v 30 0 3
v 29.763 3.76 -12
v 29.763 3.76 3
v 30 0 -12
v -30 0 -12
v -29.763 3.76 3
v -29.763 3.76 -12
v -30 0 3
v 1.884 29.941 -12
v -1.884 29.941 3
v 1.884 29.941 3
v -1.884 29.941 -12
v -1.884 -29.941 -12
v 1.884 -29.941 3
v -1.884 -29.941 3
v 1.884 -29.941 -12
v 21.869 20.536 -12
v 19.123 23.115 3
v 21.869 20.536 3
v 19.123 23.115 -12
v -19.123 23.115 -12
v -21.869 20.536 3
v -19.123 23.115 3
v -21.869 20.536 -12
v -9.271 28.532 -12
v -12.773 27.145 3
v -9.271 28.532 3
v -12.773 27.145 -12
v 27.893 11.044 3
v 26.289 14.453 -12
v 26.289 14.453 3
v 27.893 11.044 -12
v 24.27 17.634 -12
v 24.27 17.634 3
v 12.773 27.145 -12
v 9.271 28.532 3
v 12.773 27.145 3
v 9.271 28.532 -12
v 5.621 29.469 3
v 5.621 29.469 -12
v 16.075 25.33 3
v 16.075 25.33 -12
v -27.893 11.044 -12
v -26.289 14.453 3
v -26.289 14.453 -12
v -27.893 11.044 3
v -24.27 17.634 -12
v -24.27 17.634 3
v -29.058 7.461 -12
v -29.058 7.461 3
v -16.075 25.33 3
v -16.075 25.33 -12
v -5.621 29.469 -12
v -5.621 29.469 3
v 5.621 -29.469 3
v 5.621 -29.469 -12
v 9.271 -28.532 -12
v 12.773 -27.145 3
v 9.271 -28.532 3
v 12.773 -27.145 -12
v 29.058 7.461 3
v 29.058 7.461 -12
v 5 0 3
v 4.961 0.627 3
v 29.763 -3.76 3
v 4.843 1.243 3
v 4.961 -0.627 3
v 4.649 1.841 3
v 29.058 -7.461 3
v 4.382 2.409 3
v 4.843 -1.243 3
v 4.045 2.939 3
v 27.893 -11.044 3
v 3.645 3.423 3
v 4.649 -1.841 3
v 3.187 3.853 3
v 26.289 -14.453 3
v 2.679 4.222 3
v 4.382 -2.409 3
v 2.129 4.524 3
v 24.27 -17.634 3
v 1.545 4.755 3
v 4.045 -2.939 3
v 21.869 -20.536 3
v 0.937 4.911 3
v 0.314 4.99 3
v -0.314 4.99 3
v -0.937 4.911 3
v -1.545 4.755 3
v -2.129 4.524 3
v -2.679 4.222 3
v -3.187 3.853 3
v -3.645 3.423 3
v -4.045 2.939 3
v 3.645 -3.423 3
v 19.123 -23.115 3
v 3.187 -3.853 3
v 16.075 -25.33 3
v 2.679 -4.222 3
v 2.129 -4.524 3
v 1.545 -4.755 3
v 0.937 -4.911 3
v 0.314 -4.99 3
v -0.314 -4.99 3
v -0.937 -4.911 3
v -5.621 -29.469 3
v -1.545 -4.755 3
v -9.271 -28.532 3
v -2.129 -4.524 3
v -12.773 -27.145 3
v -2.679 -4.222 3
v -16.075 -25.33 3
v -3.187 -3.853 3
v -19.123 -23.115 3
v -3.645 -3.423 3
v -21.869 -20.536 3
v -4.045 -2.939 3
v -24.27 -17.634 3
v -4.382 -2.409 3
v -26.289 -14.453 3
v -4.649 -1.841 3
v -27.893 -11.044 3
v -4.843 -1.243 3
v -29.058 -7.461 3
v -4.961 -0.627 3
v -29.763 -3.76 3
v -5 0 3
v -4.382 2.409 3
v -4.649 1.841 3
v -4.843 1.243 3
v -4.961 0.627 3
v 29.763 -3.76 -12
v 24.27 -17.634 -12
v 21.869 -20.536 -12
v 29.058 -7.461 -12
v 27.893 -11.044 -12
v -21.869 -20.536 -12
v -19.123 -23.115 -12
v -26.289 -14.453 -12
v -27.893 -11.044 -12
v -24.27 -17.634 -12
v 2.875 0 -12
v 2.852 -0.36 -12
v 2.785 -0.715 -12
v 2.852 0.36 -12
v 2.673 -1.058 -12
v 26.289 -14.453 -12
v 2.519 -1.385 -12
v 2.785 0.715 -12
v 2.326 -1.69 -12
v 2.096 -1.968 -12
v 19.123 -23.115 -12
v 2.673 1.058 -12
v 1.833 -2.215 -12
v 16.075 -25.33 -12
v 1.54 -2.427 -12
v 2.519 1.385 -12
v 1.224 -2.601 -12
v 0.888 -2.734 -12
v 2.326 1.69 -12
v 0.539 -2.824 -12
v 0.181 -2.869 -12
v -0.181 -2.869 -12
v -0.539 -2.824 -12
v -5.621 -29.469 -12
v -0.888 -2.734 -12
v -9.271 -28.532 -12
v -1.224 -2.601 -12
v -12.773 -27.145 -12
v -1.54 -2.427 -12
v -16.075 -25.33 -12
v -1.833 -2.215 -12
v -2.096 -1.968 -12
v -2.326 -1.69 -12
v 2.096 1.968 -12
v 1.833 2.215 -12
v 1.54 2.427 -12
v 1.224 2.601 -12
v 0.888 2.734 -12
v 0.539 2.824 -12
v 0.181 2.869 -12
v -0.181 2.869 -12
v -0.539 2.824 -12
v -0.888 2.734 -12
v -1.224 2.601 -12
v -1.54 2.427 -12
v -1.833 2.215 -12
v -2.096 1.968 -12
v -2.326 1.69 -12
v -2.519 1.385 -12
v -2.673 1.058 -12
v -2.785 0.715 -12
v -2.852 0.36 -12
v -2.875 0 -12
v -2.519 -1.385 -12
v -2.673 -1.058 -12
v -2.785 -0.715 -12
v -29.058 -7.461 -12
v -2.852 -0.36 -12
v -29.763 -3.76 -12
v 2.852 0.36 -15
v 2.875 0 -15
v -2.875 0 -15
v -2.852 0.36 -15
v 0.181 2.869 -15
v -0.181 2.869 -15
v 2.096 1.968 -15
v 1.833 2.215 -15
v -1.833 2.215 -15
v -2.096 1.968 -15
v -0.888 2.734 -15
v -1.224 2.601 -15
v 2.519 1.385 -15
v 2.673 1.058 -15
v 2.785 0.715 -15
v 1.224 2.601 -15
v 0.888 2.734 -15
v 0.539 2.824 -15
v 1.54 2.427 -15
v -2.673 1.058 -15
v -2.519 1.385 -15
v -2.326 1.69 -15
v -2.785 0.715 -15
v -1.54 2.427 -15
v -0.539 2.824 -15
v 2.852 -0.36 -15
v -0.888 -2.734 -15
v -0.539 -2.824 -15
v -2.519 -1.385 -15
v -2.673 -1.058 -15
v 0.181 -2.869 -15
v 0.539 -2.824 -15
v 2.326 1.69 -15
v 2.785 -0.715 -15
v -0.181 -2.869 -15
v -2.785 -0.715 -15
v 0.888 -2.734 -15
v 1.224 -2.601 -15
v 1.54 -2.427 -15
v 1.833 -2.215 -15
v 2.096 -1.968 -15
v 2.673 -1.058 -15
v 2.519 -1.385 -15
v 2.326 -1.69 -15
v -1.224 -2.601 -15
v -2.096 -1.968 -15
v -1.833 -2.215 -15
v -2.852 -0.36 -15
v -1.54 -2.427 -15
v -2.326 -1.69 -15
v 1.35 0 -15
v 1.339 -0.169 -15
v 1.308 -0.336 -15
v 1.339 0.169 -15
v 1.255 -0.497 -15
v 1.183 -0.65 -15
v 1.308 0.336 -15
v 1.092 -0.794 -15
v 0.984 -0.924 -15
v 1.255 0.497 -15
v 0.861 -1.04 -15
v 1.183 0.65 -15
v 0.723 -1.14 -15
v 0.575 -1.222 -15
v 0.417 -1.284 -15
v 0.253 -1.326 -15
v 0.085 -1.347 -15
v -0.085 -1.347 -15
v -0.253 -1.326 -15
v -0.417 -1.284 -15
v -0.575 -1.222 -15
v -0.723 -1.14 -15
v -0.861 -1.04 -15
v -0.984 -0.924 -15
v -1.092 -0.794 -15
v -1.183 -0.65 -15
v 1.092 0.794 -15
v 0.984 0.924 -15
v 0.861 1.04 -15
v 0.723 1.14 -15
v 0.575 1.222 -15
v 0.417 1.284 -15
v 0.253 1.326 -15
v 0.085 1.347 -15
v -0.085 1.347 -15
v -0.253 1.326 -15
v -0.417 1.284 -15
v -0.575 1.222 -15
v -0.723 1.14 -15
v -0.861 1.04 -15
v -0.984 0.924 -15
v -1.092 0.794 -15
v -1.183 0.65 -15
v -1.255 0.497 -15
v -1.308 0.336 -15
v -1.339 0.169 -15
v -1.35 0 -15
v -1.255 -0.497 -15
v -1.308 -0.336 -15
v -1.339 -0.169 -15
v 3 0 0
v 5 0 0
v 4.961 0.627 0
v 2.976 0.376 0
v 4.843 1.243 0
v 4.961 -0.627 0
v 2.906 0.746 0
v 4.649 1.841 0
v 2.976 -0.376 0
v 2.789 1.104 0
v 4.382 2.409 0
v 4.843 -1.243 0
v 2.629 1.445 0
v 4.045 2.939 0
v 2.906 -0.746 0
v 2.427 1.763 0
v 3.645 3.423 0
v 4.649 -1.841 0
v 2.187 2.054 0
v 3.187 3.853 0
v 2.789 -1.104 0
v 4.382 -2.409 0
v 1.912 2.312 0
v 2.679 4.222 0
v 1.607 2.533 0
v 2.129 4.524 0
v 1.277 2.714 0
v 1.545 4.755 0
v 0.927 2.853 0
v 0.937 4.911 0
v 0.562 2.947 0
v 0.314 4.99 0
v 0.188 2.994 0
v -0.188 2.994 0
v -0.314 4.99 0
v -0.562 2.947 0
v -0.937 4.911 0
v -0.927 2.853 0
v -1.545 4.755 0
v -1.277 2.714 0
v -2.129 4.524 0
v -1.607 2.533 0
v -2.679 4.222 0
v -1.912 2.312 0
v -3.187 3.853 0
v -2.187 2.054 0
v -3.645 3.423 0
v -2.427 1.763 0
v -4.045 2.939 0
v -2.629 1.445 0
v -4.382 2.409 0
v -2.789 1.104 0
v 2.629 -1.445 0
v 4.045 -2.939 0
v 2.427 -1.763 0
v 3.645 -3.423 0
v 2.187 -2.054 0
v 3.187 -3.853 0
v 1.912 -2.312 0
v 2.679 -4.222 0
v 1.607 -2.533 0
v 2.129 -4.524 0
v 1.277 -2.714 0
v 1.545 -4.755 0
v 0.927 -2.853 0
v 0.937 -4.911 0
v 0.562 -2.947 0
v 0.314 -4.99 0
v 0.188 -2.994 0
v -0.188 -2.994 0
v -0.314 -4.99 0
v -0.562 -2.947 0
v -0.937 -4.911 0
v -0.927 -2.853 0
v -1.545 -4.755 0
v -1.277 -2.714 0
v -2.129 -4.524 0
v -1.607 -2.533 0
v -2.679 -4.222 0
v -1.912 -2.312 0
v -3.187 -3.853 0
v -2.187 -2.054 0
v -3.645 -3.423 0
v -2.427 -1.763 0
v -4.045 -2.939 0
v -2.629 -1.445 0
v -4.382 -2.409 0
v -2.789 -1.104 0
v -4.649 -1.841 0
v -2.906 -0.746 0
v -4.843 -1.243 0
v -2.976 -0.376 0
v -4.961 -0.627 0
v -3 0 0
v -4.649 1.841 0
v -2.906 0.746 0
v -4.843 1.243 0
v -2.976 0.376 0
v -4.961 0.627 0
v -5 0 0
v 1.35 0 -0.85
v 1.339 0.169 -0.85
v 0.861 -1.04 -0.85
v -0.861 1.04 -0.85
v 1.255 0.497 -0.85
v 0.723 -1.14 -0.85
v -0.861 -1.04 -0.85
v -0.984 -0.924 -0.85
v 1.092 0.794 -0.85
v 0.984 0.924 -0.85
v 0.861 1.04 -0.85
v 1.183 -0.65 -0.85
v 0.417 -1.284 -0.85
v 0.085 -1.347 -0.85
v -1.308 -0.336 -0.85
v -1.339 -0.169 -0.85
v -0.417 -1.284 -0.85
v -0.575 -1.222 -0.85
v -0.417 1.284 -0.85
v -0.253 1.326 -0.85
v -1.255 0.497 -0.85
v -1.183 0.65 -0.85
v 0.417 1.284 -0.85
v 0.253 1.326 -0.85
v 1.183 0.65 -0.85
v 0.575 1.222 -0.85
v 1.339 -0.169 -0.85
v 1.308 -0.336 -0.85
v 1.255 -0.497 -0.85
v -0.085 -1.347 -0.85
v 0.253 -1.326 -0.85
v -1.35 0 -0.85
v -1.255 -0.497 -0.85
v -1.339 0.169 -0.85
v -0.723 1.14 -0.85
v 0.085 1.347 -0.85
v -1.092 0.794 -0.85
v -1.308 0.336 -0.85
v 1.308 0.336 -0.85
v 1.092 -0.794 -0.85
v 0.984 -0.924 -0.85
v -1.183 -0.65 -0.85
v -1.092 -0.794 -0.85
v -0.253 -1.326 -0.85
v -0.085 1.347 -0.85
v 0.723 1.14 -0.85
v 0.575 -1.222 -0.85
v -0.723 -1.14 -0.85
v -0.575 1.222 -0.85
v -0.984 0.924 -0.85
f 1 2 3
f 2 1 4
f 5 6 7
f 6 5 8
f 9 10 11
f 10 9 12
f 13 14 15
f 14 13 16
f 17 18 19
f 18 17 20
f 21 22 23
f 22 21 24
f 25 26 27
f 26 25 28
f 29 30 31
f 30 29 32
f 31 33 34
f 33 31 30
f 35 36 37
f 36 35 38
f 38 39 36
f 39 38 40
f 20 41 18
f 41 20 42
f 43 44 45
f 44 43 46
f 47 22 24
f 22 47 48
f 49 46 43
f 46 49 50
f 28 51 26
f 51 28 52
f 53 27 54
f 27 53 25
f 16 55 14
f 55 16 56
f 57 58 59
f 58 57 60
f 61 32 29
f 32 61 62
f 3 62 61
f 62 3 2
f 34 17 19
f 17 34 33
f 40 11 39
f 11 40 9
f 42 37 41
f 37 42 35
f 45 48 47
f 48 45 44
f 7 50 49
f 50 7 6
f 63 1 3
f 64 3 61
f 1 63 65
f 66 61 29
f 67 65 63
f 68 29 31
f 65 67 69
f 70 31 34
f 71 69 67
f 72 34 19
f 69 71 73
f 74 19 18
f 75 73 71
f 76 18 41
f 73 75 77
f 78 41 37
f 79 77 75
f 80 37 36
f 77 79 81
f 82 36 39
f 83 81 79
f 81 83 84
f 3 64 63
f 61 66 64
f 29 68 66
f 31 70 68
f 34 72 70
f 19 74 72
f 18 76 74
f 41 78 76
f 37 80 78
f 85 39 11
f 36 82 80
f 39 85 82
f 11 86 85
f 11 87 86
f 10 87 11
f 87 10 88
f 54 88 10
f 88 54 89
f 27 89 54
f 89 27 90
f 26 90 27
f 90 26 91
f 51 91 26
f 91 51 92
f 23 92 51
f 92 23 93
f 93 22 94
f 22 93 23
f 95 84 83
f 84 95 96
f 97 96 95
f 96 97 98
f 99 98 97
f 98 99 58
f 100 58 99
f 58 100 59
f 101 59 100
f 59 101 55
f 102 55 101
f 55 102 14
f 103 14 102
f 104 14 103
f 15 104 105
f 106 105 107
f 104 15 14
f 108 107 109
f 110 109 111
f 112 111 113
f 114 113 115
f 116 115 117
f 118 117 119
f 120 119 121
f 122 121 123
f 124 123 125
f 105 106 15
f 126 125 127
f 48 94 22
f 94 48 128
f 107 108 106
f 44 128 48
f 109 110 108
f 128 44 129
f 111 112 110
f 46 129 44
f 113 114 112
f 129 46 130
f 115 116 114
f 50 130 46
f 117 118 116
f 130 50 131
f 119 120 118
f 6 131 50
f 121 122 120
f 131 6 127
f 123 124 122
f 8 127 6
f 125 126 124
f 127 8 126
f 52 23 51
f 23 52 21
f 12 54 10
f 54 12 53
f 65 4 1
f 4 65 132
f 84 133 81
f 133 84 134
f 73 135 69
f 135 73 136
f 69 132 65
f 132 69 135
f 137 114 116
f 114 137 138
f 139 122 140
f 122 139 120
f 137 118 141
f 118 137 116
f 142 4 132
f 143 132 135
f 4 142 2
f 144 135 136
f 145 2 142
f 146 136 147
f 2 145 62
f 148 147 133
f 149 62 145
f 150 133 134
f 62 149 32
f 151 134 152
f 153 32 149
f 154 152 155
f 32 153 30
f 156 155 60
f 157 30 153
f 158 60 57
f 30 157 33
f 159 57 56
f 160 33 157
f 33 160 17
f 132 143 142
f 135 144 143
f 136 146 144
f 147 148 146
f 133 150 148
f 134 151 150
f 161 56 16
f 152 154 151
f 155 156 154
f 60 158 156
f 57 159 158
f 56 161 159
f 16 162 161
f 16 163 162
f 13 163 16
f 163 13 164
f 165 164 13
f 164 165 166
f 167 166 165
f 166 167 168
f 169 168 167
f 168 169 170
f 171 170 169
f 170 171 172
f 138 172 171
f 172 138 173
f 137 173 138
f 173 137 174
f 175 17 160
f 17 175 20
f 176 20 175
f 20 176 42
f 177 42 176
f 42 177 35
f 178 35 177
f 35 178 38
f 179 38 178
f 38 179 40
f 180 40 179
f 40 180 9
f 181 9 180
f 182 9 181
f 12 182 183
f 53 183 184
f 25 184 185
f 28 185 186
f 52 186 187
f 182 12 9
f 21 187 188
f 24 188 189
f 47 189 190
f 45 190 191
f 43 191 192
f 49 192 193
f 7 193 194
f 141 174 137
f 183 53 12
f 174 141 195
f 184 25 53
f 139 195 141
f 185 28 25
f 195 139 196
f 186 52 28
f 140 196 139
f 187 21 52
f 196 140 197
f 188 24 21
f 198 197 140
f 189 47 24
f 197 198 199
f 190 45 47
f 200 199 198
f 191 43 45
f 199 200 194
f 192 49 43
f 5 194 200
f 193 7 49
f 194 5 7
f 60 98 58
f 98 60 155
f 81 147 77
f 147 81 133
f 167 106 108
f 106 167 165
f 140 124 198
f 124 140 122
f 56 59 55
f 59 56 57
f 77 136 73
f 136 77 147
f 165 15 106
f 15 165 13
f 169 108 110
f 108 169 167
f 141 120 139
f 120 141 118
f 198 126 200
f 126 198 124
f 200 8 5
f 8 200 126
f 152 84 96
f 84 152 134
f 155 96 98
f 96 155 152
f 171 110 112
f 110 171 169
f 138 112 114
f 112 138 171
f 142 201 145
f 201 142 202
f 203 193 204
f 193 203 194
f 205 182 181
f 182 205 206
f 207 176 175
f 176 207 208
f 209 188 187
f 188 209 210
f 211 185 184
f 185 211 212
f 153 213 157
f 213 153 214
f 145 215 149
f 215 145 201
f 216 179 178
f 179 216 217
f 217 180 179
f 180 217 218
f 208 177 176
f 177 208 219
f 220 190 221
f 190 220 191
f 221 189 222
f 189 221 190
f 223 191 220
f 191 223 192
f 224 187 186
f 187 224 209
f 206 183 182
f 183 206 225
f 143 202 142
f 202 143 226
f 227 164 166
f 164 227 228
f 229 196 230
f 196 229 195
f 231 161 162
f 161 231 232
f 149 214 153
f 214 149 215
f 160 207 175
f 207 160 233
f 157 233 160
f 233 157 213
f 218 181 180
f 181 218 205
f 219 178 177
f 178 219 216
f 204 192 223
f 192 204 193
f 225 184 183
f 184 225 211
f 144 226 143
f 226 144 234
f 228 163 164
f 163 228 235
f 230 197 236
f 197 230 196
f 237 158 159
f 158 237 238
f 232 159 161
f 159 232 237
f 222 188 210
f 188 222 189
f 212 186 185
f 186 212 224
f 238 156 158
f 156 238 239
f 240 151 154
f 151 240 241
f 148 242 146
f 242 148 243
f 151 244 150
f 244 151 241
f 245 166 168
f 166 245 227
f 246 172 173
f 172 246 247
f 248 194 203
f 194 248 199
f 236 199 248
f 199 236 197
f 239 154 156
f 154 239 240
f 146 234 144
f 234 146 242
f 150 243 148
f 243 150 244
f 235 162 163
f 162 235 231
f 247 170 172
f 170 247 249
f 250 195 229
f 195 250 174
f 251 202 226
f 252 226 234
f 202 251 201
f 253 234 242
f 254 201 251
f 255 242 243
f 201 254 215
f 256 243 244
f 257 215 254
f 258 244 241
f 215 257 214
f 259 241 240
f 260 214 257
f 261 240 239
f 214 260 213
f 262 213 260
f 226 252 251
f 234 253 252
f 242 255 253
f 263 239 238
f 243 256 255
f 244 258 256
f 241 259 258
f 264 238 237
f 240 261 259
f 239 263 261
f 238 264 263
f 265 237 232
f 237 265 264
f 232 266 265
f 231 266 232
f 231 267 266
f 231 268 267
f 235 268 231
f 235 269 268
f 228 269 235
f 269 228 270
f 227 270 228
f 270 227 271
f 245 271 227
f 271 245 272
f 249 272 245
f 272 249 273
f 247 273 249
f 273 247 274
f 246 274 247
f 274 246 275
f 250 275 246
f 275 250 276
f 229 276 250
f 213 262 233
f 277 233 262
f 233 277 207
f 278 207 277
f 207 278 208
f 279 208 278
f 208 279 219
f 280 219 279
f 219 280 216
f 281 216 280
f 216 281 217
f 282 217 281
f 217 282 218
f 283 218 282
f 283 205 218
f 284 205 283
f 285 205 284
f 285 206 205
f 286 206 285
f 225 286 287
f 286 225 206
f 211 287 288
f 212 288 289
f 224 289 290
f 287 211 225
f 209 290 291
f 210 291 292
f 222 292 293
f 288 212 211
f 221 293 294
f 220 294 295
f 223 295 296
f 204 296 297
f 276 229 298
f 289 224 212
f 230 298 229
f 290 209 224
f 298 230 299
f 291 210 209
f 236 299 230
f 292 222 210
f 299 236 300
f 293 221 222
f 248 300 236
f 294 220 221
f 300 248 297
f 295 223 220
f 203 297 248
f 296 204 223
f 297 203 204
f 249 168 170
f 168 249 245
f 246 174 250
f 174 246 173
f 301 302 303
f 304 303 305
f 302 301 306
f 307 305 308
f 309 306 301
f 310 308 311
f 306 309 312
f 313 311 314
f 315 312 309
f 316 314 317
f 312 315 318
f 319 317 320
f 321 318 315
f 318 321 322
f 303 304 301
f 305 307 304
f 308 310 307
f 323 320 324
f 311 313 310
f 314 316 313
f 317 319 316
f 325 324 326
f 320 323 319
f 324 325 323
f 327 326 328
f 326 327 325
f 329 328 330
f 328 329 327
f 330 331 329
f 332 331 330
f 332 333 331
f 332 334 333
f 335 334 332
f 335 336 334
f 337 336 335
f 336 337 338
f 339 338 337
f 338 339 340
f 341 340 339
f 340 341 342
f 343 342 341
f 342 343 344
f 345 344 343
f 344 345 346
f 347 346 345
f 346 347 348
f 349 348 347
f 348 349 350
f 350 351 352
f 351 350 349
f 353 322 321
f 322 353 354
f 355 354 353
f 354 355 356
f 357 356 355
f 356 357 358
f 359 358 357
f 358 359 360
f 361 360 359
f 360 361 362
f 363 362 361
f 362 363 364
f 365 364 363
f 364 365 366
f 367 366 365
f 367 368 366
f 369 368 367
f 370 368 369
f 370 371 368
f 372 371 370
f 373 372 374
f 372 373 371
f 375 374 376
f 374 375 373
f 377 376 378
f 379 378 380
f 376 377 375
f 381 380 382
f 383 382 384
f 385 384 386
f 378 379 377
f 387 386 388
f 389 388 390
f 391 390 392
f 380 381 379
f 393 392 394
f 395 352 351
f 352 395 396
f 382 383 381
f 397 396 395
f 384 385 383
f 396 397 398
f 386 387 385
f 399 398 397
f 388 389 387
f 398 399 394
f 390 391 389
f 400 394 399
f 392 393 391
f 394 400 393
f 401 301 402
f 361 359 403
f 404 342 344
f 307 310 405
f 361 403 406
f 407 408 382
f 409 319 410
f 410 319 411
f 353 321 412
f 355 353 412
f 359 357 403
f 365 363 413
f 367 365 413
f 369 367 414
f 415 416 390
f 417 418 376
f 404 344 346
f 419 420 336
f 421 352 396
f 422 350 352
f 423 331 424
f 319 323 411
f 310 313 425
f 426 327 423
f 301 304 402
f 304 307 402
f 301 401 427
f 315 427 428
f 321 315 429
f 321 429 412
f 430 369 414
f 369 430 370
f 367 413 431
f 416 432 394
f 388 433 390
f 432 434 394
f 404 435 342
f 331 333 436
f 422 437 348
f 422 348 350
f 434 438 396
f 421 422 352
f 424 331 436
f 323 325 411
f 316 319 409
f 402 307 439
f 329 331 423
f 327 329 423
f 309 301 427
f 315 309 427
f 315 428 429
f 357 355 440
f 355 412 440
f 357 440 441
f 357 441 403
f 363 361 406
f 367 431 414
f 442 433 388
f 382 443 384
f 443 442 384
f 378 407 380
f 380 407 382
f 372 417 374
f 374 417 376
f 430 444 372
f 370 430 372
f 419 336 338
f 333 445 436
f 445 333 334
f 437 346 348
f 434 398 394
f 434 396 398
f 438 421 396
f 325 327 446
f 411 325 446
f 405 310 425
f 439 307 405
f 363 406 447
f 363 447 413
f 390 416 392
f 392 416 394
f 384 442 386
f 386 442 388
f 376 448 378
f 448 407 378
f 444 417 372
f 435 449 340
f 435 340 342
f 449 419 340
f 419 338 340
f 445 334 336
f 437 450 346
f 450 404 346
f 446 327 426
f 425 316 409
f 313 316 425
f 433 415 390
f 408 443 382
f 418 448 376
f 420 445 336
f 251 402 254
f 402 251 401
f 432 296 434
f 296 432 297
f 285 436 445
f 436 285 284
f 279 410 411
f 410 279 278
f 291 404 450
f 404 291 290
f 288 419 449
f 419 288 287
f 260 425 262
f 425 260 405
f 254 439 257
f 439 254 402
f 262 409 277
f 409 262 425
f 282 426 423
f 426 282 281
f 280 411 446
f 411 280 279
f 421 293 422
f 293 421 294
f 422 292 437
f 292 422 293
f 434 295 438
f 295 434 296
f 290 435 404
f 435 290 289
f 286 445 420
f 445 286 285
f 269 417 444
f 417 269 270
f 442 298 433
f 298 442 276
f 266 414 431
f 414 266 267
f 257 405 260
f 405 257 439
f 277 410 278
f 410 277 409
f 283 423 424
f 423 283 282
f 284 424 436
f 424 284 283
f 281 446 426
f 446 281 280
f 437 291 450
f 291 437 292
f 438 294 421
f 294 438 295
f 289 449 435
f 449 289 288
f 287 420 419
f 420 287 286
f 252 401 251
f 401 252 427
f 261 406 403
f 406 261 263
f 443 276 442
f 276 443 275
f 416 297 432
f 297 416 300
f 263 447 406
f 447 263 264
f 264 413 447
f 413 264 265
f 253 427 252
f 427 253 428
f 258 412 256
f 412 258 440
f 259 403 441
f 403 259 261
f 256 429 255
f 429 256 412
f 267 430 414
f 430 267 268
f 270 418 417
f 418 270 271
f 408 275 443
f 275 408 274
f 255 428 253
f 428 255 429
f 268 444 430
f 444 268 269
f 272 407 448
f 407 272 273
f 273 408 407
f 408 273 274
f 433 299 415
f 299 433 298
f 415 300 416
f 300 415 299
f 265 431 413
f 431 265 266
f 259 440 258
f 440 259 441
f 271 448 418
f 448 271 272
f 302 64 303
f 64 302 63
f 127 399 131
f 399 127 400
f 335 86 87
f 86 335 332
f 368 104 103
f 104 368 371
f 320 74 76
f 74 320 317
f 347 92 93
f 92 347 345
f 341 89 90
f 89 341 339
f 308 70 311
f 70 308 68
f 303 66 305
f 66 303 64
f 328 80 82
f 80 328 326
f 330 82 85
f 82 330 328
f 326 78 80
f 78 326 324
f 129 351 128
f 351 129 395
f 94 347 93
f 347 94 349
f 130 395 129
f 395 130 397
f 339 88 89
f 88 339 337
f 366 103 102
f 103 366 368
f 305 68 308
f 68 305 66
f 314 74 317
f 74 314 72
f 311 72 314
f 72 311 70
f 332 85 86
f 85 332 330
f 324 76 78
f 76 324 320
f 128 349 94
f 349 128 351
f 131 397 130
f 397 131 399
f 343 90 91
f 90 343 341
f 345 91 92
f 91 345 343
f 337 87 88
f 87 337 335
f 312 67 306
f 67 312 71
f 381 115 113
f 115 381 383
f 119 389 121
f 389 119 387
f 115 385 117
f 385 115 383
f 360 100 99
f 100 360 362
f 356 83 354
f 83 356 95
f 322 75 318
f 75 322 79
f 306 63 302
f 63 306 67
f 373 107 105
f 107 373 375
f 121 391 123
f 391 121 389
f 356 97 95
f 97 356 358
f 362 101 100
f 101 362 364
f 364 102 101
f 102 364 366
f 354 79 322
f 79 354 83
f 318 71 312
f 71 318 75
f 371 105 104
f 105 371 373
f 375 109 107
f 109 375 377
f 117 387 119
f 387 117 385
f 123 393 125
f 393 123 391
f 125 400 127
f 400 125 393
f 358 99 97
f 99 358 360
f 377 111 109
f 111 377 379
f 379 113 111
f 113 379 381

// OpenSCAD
$fn = 50;


difference() {
	union() {
		translate(v = [0, 0, -12.0000000000]) {
			cylinder(h = 15, r = 30.0000000000);
		}
		#translate(v = [0, 0, -15.0000000000]) {
			cylinder(h = 15, r = 2.8750000000);
		}
	}
	union() {
		translate(v = [0, 0, 0]) {
			rotate(a = [0, 0, 0]) {
				difference() {
					union() {
						translate(v = [0, 0, -15.0000000000]) {
							cylinder(h = 15, r = 1.0000000000);
						}
						translate(v = [0, 0, -0.8500000000]) {
							cylinder(h = 0.8500000000, r1 = 1.3500000000, r2 = 3.0000000000);
						}
						translate(v = [0, 0, -15.0000000000]) {
							cylinder(h = 15, r = 1.3500000000);
						}
						translate(v = [0, 0, -15.0000000000]) {
							cylinder(h = 15, r = 1.0000000000);
						}
					}
					union();
				}
			}
		}
		#cylinder(h = 3, r = 5.0000000000);
	}
}
